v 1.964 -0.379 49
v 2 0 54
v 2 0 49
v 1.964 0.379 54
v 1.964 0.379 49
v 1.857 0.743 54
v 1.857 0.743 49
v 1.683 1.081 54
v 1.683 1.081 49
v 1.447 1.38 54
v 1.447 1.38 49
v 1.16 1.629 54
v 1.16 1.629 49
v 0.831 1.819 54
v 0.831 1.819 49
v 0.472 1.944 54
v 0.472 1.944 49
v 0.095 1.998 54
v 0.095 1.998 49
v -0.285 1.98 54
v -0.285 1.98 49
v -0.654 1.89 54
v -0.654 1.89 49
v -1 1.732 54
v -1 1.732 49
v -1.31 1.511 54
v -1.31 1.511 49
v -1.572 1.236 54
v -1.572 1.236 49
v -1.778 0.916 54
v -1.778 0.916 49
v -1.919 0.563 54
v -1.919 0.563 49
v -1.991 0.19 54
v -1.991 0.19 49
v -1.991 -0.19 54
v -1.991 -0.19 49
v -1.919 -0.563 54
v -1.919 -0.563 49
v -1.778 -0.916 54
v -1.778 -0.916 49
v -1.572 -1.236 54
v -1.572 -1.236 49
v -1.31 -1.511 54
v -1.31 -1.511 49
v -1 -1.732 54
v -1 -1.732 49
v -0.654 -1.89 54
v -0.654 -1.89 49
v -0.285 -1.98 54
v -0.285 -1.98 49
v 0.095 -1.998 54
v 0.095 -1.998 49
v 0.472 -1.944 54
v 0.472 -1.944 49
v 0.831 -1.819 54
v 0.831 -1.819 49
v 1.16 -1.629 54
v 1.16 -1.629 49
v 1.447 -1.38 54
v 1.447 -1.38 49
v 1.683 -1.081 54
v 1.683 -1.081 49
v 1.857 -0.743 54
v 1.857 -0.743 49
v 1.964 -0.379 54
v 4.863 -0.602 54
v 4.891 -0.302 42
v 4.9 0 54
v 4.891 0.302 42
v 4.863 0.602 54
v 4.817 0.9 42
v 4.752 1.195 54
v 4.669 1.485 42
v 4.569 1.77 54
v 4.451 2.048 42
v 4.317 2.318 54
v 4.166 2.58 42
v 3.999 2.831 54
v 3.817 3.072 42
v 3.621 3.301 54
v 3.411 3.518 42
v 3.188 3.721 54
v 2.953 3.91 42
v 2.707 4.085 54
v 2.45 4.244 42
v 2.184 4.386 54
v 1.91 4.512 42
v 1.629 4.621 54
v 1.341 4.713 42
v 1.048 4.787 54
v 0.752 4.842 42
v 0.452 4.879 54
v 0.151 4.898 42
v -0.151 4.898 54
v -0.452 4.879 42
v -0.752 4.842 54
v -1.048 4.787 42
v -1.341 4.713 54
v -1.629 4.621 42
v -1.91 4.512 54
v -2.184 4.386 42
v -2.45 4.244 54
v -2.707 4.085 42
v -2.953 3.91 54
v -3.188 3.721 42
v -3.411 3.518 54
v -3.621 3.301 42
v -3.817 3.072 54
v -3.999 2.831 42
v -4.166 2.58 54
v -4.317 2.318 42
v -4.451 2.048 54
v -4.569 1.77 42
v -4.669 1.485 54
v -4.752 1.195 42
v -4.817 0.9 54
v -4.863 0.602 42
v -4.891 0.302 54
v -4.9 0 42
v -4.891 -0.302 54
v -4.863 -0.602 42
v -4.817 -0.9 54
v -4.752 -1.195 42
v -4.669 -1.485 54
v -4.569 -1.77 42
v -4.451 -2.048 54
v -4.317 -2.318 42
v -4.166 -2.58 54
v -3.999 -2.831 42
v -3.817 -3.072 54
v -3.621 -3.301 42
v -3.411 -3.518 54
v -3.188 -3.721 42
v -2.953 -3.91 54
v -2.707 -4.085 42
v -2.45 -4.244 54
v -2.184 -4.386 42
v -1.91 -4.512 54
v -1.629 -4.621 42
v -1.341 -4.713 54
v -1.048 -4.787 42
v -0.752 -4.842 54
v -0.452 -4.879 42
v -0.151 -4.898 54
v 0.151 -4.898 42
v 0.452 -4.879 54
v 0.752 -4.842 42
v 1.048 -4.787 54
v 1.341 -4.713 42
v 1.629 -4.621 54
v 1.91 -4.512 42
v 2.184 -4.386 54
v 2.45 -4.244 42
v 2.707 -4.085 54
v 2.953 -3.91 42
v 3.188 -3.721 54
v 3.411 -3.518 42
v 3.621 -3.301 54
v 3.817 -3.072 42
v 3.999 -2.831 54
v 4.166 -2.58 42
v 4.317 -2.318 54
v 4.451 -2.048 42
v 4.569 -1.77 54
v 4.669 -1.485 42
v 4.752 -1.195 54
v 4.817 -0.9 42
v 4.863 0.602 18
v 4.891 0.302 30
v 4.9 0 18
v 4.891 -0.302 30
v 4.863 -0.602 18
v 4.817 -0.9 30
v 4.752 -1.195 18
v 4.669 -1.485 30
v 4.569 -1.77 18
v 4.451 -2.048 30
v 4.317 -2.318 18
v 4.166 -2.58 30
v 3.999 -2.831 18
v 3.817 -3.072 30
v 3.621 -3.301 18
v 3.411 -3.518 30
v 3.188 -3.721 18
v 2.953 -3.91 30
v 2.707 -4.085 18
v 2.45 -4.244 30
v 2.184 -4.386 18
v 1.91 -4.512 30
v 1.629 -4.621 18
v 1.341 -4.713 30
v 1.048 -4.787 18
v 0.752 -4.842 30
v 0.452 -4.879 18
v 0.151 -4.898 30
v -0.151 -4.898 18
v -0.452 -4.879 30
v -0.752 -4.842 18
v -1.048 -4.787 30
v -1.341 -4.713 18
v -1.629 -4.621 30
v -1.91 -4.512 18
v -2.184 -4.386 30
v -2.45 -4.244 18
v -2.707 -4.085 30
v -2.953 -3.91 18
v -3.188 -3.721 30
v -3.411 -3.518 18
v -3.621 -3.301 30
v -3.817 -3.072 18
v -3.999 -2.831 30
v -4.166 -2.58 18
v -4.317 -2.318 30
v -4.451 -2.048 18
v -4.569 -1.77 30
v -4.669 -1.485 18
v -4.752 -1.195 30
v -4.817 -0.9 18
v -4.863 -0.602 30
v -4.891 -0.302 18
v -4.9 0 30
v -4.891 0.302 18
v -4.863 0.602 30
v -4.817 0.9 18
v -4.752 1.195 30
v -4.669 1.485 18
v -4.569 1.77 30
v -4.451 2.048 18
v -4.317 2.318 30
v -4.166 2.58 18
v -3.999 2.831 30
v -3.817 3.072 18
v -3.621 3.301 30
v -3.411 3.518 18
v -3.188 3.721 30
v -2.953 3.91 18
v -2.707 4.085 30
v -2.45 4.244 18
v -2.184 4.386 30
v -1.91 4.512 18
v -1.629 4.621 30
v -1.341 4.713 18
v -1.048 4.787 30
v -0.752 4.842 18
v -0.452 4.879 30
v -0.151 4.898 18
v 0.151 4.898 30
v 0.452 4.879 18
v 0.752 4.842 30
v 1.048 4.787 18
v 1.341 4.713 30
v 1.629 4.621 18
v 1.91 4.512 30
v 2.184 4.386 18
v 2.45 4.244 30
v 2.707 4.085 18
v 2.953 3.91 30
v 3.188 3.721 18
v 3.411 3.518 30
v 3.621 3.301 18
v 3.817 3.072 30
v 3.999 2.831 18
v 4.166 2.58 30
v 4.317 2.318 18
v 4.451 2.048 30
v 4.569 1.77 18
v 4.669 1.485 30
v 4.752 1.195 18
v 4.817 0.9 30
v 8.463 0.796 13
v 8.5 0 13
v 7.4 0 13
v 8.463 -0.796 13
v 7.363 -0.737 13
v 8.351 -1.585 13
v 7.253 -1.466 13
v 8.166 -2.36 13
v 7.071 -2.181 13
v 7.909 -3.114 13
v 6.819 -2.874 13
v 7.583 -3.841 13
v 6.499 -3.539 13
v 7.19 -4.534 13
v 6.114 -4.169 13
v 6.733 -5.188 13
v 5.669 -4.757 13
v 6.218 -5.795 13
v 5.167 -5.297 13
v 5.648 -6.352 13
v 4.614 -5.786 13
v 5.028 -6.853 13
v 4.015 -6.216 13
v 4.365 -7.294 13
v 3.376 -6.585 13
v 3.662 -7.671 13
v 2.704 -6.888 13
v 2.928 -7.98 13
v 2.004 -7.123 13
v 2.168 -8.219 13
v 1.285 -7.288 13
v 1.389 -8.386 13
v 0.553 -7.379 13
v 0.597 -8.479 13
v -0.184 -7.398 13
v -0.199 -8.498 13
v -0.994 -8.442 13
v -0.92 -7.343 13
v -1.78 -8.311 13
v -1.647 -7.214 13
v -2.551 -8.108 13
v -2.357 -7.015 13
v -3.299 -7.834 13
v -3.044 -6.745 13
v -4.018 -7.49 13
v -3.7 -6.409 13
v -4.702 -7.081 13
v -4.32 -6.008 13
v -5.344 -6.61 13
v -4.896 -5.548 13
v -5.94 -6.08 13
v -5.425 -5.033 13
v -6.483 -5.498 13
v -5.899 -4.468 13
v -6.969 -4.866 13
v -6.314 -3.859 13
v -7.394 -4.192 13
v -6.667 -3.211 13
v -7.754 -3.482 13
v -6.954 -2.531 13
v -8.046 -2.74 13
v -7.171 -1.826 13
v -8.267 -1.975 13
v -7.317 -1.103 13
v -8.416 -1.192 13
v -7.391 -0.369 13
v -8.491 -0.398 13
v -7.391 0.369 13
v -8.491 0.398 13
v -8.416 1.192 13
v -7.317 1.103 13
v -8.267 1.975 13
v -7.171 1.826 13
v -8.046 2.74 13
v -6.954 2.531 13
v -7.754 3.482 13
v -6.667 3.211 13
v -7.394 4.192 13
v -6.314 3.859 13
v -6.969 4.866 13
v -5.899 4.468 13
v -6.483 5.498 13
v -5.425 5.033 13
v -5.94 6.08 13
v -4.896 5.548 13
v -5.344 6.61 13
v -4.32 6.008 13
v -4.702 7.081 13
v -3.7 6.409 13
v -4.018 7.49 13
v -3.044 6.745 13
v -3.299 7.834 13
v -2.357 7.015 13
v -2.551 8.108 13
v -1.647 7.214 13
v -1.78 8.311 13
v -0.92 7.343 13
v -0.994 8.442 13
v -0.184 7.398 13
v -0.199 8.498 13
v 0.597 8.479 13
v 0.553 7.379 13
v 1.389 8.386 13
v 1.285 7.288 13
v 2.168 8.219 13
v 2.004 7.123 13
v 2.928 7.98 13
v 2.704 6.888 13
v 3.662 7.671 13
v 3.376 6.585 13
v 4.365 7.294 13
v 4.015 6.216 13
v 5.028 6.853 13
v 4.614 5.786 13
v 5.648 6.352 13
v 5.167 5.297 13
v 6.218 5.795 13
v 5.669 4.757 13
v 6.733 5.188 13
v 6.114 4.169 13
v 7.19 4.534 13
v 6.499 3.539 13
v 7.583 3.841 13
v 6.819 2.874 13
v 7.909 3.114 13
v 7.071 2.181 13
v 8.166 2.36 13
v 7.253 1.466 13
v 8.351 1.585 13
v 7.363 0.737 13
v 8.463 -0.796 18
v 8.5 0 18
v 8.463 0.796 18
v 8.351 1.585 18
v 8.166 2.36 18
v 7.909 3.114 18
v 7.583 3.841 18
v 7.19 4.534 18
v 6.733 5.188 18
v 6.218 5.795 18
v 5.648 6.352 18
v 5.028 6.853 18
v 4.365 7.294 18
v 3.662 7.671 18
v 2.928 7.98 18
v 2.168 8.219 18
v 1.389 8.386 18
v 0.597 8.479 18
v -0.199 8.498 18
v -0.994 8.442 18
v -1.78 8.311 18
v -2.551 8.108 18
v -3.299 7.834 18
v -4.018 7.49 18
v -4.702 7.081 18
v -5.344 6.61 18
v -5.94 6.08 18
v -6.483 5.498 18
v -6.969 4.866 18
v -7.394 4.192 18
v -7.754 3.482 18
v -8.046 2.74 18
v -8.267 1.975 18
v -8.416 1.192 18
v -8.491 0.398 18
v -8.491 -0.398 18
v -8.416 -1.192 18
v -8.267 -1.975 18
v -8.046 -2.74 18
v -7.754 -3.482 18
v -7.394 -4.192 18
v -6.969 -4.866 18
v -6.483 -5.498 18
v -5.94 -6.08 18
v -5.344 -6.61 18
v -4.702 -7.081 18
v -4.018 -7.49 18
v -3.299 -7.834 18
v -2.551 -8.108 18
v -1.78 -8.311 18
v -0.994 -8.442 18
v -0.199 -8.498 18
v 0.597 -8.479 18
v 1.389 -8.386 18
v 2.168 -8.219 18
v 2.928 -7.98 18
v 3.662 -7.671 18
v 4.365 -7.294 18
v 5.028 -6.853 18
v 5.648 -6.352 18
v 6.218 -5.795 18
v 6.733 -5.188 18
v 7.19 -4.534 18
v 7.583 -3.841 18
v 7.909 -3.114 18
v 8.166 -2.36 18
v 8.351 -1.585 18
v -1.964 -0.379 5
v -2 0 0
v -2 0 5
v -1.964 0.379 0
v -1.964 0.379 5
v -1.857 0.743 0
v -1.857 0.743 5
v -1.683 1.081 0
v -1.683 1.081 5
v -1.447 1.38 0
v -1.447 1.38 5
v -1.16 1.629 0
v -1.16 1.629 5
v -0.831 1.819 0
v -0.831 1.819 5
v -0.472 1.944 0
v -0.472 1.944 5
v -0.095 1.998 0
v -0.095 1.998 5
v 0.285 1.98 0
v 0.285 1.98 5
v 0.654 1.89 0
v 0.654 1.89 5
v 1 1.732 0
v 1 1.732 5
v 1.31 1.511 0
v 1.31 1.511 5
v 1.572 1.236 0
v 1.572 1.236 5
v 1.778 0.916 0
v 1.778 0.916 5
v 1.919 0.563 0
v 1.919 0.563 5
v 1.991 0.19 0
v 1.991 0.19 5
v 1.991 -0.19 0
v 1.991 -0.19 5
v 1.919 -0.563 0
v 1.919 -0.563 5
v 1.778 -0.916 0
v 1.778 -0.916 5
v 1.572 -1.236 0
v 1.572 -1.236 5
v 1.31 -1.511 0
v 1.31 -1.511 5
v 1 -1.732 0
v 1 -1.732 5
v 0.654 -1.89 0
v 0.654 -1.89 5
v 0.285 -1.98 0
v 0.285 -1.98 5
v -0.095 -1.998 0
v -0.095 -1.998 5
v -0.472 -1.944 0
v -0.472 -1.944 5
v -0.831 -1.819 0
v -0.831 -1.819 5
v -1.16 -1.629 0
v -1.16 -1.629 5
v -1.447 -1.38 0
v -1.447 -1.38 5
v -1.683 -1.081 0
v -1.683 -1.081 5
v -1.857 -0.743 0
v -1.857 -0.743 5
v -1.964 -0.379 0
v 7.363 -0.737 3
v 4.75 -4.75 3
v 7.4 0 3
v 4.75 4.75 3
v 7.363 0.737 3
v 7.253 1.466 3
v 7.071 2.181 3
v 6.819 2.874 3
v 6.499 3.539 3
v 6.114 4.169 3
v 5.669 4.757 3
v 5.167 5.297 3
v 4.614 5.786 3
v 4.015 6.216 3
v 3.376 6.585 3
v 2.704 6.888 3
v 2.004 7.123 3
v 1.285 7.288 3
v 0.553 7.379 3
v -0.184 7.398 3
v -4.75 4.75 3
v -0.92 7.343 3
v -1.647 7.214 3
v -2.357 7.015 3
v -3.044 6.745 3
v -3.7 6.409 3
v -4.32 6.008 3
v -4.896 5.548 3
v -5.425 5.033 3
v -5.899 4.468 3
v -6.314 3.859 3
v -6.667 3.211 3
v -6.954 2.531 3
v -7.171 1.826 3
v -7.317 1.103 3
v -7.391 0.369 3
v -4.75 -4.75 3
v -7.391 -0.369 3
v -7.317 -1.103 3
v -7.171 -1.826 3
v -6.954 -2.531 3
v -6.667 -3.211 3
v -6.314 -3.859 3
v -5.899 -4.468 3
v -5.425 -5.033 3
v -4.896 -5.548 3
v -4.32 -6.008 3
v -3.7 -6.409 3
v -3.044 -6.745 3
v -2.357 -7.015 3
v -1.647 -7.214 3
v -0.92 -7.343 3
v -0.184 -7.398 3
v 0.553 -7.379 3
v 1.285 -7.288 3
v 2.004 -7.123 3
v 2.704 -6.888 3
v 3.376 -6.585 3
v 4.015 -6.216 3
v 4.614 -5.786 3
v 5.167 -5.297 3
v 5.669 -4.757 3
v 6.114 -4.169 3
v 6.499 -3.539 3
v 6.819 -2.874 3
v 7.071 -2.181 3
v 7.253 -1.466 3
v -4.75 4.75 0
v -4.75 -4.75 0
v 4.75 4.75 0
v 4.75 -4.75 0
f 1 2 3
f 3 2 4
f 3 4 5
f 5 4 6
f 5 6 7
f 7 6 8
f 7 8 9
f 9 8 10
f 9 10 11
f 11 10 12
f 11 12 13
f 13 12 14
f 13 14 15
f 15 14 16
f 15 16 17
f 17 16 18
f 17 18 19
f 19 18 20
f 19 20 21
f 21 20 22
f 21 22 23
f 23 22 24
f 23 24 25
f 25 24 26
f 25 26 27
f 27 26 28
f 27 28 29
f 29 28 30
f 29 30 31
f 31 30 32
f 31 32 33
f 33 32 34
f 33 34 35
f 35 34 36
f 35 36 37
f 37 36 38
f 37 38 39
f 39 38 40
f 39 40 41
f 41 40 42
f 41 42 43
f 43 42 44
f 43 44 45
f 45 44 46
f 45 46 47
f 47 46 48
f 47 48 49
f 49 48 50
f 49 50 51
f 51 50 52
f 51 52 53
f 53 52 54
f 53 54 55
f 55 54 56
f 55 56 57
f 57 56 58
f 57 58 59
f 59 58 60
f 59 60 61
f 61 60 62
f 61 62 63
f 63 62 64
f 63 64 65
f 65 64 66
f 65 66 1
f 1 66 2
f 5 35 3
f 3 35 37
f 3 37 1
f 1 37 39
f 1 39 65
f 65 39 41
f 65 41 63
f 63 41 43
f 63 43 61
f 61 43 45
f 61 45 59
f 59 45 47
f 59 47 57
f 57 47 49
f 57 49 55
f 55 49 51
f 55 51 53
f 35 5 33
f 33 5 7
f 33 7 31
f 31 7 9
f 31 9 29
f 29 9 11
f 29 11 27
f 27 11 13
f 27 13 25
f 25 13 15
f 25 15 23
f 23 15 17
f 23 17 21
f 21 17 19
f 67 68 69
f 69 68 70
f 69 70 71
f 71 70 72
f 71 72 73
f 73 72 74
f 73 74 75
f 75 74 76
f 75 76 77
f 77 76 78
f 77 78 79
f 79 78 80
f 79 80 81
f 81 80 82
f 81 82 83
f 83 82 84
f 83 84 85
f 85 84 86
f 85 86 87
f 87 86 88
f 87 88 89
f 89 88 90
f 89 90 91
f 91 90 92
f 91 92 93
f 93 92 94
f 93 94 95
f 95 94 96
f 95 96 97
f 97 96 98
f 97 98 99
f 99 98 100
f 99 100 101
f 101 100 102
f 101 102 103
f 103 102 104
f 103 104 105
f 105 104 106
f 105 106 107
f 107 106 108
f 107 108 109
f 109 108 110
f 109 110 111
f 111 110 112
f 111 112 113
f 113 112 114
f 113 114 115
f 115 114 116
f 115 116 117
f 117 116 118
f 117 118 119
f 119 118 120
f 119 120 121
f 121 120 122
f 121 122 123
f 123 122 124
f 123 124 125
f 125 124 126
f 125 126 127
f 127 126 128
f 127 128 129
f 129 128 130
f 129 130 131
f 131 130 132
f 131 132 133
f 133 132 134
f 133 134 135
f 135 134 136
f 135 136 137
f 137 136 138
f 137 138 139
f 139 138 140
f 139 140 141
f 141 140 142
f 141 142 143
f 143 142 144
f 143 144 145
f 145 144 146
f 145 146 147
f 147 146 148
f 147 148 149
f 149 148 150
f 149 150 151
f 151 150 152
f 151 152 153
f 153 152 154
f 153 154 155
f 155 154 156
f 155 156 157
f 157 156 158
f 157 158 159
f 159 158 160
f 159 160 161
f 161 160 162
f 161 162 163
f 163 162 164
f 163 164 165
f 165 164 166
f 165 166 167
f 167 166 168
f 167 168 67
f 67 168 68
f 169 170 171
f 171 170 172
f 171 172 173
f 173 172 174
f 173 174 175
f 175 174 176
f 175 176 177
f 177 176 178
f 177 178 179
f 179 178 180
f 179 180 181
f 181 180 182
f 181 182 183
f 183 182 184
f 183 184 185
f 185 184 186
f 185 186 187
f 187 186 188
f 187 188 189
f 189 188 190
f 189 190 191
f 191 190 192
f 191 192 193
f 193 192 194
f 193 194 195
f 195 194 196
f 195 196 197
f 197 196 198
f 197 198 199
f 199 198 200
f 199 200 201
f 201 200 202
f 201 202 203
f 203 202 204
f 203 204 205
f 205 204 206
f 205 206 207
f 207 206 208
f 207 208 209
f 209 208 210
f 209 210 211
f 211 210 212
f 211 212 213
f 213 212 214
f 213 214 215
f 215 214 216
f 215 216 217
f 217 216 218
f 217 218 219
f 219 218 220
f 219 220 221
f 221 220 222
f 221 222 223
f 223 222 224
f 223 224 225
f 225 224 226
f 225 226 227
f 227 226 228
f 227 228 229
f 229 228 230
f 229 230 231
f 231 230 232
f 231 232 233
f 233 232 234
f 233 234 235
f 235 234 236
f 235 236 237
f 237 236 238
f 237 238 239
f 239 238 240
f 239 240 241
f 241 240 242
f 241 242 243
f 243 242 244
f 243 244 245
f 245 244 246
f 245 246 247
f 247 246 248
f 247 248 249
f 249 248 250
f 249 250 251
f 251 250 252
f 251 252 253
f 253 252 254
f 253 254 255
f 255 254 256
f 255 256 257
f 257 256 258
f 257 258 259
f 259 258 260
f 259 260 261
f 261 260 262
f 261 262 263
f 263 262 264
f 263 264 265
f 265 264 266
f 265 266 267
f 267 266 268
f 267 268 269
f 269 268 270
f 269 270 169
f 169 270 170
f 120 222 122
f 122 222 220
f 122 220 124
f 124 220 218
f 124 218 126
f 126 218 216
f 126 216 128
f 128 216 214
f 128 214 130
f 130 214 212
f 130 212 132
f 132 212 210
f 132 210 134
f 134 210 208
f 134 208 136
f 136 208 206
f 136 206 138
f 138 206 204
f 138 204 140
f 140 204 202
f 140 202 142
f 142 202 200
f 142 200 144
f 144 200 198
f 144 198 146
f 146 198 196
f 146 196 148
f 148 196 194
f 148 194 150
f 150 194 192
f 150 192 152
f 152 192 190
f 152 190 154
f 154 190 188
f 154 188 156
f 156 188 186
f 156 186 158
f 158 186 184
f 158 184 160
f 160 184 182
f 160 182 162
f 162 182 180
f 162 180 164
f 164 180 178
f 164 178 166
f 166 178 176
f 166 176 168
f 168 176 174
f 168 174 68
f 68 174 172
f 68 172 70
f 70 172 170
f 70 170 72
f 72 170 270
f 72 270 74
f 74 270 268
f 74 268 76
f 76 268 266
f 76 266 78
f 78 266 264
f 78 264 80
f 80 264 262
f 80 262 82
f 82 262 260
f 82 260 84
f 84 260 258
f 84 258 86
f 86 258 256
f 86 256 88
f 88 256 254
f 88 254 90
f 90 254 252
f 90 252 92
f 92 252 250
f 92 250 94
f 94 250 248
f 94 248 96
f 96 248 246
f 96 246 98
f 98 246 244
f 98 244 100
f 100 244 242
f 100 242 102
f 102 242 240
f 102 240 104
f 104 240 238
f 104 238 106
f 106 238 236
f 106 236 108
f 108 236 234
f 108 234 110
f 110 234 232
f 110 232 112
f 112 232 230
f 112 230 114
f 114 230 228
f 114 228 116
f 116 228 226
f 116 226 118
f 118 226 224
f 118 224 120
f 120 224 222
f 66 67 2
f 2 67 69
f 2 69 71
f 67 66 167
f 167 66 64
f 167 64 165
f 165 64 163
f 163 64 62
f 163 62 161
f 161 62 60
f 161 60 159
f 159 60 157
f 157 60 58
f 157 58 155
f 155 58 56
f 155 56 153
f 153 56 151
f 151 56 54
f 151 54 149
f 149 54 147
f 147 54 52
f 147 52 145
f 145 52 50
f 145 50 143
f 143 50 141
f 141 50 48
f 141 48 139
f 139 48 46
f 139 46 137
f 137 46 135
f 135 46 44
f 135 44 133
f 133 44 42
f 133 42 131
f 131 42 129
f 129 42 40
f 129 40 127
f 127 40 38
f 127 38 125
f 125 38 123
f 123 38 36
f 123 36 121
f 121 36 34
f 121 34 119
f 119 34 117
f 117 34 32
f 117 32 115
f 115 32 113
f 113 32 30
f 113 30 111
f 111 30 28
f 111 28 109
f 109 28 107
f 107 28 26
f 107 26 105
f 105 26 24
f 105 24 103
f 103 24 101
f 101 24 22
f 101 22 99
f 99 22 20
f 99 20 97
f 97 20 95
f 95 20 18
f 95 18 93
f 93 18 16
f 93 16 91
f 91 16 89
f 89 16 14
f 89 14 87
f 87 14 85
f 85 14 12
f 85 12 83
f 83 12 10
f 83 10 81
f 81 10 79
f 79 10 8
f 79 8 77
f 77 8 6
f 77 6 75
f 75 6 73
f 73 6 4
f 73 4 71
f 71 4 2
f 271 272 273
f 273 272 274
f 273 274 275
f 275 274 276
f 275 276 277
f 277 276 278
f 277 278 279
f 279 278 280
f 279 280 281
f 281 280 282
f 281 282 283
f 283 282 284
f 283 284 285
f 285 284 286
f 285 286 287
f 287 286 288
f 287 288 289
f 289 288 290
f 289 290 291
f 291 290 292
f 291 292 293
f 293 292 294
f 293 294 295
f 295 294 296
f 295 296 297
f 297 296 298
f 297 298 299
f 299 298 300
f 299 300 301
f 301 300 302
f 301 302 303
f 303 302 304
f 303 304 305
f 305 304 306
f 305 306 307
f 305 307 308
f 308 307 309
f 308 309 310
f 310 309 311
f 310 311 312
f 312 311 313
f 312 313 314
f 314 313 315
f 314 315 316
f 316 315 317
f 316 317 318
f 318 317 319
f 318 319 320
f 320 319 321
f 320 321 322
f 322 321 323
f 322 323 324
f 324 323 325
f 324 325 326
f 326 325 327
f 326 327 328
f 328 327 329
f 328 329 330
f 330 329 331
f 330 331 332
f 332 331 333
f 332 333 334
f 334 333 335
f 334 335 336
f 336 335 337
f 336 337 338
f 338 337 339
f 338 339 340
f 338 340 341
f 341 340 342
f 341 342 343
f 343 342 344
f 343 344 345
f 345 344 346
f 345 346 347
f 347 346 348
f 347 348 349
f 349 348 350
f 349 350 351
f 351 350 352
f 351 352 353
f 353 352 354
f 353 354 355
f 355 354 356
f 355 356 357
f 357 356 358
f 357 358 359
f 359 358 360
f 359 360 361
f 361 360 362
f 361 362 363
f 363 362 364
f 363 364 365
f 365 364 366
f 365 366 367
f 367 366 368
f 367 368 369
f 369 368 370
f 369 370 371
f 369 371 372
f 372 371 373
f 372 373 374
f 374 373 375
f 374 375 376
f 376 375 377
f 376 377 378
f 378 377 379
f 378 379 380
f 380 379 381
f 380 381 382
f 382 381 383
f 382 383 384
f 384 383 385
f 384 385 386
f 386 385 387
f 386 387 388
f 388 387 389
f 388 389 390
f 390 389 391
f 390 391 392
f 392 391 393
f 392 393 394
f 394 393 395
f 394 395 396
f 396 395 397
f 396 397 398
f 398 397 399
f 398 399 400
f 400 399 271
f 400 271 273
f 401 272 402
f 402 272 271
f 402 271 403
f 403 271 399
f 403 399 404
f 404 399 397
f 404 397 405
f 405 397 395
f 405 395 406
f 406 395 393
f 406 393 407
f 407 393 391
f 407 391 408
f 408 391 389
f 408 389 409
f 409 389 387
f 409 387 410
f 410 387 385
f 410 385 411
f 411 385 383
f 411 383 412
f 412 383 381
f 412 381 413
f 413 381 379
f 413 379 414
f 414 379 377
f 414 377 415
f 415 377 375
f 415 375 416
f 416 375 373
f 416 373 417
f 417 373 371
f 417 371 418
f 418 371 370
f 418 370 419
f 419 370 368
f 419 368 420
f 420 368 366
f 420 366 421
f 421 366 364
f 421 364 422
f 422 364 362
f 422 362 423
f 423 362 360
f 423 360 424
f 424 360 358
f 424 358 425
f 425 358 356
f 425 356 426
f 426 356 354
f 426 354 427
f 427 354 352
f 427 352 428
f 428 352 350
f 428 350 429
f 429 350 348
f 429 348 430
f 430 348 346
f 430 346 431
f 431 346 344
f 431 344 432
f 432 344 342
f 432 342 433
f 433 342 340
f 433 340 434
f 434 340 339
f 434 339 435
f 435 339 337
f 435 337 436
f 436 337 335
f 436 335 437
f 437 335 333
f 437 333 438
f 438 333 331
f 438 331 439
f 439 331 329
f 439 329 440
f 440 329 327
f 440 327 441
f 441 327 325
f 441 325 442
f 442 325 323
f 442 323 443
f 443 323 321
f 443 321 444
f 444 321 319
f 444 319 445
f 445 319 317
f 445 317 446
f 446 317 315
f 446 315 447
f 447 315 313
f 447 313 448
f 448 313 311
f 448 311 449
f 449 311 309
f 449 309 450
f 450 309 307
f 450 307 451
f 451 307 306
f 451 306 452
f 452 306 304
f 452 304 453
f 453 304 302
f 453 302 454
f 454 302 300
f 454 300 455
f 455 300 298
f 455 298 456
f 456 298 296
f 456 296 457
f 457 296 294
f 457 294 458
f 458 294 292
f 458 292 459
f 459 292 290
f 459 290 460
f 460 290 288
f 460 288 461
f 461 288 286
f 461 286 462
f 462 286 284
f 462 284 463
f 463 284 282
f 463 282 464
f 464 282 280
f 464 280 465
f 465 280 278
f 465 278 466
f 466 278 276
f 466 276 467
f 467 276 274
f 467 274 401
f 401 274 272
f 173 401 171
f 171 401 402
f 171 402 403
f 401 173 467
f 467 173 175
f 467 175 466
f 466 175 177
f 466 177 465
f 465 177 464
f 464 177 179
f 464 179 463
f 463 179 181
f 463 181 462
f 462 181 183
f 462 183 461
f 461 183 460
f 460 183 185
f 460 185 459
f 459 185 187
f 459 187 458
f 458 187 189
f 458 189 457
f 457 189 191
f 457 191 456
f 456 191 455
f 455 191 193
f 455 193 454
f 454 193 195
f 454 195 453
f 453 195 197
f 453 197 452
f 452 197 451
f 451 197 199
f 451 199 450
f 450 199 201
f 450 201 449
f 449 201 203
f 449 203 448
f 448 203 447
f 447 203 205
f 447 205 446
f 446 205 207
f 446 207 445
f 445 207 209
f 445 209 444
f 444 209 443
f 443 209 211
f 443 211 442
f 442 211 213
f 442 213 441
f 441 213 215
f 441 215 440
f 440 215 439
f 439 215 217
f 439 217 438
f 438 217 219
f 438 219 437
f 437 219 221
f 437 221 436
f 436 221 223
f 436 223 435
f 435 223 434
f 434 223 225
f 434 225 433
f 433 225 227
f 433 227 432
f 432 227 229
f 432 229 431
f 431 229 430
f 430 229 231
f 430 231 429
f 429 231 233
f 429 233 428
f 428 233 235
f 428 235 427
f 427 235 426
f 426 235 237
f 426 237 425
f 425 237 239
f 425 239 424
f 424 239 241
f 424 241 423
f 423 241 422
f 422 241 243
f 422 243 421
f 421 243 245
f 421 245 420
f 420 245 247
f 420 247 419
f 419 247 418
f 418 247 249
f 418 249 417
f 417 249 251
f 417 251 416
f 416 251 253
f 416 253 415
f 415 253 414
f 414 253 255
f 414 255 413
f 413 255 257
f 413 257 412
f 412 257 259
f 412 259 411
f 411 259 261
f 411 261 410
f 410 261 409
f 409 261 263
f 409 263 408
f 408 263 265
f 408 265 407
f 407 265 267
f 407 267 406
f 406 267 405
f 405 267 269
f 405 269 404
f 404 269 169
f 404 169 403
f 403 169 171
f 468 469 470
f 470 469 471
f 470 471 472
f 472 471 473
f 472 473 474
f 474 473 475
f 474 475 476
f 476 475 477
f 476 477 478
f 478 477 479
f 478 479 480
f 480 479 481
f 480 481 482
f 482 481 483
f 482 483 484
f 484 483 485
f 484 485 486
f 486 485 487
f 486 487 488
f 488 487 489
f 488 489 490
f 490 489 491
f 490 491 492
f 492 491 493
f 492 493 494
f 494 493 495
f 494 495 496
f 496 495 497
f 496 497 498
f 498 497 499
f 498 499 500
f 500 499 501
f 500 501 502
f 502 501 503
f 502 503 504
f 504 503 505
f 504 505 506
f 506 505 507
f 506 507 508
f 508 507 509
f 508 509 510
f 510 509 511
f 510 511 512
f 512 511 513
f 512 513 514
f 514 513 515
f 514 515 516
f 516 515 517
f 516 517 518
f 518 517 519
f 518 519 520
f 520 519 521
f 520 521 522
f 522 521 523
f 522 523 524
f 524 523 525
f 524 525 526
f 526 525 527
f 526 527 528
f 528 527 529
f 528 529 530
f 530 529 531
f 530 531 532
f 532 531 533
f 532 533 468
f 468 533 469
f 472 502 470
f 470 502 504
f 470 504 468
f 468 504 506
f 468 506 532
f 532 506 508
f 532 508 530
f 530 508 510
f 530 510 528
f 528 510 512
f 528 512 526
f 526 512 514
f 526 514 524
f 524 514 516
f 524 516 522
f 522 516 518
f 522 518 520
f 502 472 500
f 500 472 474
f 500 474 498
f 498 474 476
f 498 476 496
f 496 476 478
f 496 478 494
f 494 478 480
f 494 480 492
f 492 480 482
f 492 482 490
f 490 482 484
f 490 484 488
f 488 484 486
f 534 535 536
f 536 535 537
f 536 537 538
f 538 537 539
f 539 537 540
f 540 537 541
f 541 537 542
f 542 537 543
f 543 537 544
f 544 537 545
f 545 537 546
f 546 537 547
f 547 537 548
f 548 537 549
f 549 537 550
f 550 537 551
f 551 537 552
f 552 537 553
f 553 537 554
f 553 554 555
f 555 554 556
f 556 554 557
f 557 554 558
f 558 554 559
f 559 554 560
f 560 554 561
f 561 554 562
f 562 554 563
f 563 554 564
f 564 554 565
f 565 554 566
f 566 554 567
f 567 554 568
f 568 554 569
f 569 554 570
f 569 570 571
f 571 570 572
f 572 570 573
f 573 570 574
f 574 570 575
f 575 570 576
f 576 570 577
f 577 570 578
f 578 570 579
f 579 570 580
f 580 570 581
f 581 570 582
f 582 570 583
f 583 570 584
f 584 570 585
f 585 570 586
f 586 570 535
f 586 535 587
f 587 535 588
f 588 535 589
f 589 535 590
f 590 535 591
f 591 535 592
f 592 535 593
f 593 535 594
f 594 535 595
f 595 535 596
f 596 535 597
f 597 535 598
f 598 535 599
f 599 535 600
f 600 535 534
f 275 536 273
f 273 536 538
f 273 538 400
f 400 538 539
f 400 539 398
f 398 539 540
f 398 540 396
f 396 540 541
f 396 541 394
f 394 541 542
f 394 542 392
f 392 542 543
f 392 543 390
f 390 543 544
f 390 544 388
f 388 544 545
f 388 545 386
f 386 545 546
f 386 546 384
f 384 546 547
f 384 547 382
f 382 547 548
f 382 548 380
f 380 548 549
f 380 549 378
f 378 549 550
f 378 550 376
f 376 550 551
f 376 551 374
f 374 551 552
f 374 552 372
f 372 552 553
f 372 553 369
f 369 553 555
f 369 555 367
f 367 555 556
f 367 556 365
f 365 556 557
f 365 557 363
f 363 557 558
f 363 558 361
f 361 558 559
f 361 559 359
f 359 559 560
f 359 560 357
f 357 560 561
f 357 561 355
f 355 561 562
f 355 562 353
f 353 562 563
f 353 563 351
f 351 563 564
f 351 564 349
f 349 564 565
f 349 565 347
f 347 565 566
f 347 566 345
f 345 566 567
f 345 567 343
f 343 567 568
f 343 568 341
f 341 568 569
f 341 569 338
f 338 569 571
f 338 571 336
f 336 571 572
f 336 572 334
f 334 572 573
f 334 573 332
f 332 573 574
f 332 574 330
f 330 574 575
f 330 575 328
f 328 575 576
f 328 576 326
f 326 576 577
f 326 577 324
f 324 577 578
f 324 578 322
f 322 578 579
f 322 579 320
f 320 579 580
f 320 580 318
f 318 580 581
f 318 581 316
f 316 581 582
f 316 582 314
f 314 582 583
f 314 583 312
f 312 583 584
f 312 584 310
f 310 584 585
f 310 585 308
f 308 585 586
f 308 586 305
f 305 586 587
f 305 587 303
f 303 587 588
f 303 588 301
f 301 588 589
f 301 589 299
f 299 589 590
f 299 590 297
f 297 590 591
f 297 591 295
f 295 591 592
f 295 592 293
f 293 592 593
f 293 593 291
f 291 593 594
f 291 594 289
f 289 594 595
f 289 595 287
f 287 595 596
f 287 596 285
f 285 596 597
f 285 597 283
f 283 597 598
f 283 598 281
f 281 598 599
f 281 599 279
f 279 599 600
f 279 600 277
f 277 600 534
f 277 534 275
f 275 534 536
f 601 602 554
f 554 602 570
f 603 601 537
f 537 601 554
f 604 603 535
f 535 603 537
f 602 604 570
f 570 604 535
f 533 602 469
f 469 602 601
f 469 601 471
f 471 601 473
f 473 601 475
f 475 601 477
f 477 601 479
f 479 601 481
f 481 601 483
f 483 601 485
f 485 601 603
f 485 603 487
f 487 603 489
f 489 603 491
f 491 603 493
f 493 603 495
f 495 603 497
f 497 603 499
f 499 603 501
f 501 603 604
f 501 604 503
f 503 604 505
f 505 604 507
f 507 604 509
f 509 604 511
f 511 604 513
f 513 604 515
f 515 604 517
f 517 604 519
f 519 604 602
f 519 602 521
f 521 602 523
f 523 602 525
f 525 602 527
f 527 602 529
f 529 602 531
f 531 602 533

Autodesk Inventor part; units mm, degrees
ref_plane "XZ Plane" through (0, 0, 0) normal (0, 1, 0) x (-1, 0, 0)
ref_plane "XY Plane" through (0, 0, 0) normal (0, 0, 1) x (1, 0, 0)
sketch "Skizze1" plane through (0, 0, 0) normal (0, 0, 1) x (1, 0, 0)
  line L0 (-4.75, 4.75) -> (4.75, 4.75)
  line L1 (4.75, 4.75) -> (4.75, -4.75)
  line L2 (4.75, -4.75) -> (-4.75, -4.75)
  line L3 (-4.75, -4.75) -> (-4.75, 4.75)
  line L4 (-4.75, 4.75) -> (4.75, -4.75) construction
  line L5 (4.75, 4.75) -> (-4.75, -4.75) construction
  point P0 (0, 0)
  dimension "d0" = 9.5
  dimension "d1" = 9.5
extrude "Extrusion1" add sketch "Skizze1" along normal blind 3
sketch "Skizze2" plane through (0, 0, 3) normal (0, 0, 1) x (1, 0, 0)
  circle A0 centre (0, 0) radius 7.4
  dimension "d4" = 14.8
extrude "Extrusion2" add sketch "Skizze2" along normal blind 10
sketch "Skizze5" plane through (0, 0, 0) normal (0, 0, -1) x (-1, 0, 0)
  circle A0 centre (0, 0) radius 2
  dimension "d13" = 4
extrude "Extrusion5" cut sketch "Skizze5" against normal blind 5
sketch "Skizze6" plane through (0, 0, 13) normal (0, 0, 1) x (1, 0, 0)
  circle A0 centre (0, 0) radius 8.5
  dimension "d16" = 17
extrude "Extrusion6" add sketch "Skizze6" along normal blind 5
sketch "Skizze7" plane through (0, 0, 18) normal (0, 0, 1) x (1, 0, 0)
  circle A0 centre (0, 0) radius 4.9
  dimension "d19" = 9.8
extrude "Extrusion7" add sketch "Skizze7" along normal blind 36
sketch "Skizze8" plane through (0, 0, 54) normal (0, 0, 1) x (1, 0, 0)
  circle A0 centre (0, 0) radius 2
  dimension "d22" = 4
extrude "Extrusion8" cut sketch "Skizze8" against normal blind 5
properties part number "_3D-Druck"
